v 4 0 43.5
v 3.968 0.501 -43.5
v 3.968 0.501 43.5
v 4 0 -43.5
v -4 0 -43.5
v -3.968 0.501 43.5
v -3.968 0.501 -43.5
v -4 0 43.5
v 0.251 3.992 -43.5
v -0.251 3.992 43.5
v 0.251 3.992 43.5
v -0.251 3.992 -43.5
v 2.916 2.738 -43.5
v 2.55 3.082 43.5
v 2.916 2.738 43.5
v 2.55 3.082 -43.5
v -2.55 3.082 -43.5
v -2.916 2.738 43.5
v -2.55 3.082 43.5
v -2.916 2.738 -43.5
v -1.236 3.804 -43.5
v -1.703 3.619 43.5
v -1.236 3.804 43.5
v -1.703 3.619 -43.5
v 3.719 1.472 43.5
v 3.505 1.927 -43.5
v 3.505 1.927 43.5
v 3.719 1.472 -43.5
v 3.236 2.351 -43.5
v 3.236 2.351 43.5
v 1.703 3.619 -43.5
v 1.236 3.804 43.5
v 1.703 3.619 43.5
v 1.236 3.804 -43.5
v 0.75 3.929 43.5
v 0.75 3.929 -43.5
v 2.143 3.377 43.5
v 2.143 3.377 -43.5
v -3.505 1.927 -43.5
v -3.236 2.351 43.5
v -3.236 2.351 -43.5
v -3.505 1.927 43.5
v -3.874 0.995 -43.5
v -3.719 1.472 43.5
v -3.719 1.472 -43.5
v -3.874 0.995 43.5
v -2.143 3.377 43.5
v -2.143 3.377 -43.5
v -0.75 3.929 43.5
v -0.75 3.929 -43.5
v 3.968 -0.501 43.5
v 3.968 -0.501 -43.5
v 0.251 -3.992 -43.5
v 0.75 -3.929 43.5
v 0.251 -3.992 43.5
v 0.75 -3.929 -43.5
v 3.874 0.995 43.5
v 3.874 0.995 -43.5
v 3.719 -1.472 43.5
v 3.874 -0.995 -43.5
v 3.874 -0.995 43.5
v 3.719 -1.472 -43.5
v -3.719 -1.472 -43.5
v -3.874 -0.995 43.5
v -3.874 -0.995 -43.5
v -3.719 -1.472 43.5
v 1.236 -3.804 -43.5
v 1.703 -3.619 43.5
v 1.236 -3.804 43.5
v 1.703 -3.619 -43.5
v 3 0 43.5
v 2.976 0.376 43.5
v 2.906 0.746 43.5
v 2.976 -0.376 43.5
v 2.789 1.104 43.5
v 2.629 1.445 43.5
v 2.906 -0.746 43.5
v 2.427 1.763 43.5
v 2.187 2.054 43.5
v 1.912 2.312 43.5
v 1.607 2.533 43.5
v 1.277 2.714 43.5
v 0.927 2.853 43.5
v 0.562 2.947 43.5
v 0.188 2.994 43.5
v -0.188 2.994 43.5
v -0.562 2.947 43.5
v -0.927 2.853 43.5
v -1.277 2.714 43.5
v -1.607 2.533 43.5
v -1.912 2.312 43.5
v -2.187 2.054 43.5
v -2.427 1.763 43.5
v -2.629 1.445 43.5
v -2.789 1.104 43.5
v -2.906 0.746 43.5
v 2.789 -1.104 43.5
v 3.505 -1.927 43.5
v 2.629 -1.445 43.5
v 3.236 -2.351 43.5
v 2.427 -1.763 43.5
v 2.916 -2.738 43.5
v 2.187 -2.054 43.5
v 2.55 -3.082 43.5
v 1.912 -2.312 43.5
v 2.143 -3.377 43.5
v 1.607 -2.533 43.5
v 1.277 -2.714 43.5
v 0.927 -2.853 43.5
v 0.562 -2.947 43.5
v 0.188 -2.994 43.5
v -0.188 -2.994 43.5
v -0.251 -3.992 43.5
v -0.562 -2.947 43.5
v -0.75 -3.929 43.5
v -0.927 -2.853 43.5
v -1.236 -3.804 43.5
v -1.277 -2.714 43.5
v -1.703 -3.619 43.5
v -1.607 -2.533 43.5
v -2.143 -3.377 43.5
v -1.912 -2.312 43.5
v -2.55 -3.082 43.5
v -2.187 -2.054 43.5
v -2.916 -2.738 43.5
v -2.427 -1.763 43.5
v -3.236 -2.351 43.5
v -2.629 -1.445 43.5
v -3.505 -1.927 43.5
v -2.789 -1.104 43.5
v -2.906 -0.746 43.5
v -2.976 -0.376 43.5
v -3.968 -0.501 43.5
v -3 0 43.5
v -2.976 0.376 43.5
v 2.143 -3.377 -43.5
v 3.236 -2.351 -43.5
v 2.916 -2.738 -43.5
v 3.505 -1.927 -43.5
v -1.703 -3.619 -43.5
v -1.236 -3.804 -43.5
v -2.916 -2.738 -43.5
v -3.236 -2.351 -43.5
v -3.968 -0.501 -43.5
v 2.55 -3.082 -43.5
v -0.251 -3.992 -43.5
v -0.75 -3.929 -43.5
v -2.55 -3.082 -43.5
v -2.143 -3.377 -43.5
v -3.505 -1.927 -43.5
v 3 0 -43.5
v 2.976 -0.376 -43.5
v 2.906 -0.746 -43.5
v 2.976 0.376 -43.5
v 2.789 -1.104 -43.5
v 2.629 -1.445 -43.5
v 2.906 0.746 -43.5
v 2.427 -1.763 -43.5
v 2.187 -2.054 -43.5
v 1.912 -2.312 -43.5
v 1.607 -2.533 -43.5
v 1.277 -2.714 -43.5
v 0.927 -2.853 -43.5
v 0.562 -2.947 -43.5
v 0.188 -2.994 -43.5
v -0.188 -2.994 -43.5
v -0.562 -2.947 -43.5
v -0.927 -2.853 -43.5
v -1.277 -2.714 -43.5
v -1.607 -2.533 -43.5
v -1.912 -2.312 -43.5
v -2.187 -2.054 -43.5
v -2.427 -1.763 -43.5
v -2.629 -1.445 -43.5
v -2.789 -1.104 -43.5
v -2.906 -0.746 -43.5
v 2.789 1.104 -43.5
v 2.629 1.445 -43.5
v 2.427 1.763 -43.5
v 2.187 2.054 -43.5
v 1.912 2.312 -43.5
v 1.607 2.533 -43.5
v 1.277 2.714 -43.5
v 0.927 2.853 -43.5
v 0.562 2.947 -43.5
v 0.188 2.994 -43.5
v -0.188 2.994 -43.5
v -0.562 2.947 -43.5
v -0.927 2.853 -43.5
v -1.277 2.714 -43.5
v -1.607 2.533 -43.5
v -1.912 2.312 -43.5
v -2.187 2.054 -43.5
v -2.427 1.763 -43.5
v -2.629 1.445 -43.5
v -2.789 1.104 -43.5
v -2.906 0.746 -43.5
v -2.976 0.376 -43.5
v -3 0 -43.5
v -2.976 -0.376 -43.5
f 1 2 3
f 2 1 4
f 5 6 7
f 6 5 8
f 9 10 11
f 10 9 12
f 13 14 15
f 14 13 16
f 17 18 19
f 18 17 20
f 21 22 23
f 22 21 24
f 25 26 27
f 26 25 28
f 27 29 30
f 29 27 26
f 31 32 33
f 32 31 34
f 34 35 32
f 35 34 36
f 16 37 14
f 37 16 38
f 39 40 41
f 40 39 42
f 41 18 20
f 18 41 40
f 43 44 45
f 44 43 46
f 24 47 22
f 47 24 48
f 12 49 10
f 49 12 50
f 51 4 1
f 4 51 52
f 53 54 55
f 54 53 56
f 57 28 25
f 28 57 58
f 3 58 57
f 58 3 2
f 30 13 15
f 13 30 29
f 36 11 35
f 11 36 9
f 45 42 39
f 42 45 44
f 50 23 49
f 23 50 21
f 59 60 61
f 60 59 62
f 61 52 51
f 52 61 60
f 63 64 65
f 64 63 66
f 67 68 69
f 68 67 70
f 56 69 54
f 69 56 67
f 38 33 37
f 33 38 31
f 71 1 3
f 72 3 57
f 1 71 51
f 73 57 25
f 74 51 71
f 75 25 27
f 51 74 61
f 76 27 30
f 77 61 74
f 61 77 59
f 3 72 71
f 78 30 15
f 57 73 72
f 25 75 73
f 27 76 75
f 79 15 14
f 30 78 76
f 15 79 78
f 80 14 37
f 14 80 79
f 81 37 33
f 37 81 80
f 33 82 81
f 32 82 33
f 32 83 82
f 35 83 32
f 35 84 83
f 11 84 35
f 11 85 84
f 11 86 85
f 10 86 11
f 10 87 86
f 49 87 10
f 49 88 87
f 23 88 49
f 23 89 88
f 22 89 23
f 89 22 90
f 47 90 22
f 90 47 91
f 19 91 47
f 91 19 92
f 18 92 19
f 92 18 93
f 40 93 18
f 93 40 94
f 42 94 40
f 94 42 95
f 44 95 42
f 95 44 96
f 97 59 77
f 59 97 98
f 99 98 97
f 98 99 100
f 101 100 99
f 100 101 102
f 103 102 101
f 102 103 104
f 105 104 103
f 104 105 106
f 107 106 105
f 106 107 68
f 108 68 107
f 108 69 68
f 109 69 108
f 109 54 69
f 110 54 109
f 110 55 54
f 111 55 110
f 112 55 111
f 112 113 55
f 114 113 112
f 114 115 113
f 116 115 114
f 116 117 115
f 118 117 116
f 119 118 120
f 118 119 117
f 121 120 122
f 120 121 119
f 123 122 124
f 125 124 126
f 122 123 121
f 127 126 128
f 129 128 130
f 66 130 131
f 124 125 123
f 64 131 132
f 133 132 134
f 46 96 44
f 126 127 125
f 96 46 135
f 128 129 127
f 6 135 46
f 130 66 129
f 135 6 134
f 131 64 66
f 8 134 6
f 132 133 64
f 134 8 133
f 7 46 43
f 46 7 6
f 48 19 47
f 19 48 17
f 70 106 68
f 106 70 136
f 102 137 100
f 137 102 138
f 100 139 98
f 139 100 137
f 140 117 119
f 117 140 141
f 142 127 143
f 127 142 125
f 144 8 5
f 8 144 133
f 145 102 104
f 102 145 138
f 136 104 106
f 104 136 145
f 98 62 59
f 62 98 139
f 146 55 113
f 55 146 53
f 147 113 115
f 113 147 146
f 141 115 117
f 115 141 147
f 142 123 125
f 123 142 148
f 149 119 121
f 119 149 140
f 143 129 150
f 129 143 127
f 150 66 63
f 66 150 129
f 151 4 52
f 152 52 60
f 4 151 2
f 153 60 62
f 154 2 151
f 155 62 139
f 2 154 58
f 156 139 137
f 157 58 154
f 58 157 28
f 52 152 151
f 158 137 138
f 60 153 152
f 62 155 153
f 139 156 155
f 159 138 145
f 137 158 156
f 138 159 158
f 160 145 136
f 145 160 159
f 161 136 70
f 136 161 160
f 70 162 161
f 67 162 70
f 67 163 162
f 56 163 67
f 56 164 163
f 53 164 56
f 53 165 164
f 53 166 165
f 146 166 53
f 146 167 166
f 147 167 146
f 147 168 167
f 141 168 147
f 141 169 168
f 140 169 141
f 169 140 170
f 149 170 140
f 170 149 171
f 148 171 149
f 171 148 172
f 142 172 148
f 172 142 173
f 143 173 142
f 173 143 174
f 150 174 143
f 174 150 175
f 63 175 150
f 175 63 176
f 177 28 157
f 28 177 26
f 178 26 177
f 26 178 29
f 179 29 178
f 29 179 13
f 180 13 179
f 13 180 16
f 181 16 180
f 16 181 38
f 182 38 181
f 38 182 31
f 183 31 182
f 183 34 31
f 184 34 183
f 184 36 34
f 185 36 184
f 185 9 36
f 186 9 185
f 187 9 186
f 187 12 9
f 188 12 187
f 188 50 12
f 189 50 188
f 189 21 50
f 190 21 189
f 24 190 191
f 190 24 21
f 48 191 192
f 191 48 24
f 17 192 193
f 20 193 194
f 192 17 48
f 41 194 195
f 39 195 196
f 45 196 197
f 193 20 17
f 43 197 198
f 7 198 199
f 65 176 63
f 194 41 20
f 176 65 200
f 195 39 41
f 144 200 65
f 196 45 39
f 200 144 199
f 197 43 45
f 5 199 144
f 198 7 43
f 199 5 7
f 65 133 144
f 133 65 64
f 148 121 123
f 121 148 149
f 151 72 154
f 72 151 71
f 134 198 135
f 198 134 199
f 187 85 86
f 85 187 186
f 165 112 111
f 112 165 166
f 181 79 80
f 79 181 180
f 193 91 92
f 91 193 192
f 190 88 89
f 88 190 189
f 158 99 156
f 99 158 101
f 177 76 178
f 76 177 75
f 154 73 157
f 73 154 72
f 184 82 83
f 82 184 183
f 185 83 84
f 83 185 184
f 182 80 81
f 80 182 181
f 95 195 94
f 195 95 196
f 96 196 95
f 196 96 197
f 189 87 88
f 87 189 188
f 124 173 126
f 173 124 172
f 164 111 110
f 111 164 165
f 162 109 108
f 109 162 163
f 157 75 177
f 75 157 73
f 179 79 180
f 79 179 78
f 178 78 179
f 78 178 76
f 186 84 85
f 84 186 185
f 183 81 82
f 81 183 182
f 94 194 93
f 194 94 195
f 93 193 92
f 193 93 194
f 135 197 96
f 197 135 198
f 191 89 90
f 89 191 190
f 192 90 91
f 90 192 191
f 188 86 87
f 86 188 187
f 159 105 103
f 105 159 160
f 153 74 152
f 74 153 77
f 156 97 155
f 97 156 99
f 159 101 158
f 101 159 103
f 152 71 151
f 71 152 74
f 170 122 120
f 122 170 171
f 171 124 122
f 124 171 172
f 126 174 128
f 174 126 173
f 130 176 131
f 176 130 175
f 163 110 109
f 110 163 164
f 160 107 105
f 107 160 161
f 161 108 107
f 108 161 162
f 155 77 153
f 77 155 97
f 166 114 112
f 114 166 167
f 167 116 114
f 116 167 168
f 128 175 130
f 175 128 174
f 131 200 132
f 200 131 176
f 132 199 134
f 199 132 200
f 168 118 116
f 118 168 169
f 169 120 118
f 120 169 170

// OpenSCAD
$fn = 50;


difference() {
	union() {
		translate(v = [0, 0, -43.5000000000]) {
			cylinder(h = 87, r = 4.0000000000);
		}
	}
	union() {
		translate(v = [0, 0, -100.0000000000]) {
			cylinder(h = 200, r = 3.0000000000);
		}
	}
}
